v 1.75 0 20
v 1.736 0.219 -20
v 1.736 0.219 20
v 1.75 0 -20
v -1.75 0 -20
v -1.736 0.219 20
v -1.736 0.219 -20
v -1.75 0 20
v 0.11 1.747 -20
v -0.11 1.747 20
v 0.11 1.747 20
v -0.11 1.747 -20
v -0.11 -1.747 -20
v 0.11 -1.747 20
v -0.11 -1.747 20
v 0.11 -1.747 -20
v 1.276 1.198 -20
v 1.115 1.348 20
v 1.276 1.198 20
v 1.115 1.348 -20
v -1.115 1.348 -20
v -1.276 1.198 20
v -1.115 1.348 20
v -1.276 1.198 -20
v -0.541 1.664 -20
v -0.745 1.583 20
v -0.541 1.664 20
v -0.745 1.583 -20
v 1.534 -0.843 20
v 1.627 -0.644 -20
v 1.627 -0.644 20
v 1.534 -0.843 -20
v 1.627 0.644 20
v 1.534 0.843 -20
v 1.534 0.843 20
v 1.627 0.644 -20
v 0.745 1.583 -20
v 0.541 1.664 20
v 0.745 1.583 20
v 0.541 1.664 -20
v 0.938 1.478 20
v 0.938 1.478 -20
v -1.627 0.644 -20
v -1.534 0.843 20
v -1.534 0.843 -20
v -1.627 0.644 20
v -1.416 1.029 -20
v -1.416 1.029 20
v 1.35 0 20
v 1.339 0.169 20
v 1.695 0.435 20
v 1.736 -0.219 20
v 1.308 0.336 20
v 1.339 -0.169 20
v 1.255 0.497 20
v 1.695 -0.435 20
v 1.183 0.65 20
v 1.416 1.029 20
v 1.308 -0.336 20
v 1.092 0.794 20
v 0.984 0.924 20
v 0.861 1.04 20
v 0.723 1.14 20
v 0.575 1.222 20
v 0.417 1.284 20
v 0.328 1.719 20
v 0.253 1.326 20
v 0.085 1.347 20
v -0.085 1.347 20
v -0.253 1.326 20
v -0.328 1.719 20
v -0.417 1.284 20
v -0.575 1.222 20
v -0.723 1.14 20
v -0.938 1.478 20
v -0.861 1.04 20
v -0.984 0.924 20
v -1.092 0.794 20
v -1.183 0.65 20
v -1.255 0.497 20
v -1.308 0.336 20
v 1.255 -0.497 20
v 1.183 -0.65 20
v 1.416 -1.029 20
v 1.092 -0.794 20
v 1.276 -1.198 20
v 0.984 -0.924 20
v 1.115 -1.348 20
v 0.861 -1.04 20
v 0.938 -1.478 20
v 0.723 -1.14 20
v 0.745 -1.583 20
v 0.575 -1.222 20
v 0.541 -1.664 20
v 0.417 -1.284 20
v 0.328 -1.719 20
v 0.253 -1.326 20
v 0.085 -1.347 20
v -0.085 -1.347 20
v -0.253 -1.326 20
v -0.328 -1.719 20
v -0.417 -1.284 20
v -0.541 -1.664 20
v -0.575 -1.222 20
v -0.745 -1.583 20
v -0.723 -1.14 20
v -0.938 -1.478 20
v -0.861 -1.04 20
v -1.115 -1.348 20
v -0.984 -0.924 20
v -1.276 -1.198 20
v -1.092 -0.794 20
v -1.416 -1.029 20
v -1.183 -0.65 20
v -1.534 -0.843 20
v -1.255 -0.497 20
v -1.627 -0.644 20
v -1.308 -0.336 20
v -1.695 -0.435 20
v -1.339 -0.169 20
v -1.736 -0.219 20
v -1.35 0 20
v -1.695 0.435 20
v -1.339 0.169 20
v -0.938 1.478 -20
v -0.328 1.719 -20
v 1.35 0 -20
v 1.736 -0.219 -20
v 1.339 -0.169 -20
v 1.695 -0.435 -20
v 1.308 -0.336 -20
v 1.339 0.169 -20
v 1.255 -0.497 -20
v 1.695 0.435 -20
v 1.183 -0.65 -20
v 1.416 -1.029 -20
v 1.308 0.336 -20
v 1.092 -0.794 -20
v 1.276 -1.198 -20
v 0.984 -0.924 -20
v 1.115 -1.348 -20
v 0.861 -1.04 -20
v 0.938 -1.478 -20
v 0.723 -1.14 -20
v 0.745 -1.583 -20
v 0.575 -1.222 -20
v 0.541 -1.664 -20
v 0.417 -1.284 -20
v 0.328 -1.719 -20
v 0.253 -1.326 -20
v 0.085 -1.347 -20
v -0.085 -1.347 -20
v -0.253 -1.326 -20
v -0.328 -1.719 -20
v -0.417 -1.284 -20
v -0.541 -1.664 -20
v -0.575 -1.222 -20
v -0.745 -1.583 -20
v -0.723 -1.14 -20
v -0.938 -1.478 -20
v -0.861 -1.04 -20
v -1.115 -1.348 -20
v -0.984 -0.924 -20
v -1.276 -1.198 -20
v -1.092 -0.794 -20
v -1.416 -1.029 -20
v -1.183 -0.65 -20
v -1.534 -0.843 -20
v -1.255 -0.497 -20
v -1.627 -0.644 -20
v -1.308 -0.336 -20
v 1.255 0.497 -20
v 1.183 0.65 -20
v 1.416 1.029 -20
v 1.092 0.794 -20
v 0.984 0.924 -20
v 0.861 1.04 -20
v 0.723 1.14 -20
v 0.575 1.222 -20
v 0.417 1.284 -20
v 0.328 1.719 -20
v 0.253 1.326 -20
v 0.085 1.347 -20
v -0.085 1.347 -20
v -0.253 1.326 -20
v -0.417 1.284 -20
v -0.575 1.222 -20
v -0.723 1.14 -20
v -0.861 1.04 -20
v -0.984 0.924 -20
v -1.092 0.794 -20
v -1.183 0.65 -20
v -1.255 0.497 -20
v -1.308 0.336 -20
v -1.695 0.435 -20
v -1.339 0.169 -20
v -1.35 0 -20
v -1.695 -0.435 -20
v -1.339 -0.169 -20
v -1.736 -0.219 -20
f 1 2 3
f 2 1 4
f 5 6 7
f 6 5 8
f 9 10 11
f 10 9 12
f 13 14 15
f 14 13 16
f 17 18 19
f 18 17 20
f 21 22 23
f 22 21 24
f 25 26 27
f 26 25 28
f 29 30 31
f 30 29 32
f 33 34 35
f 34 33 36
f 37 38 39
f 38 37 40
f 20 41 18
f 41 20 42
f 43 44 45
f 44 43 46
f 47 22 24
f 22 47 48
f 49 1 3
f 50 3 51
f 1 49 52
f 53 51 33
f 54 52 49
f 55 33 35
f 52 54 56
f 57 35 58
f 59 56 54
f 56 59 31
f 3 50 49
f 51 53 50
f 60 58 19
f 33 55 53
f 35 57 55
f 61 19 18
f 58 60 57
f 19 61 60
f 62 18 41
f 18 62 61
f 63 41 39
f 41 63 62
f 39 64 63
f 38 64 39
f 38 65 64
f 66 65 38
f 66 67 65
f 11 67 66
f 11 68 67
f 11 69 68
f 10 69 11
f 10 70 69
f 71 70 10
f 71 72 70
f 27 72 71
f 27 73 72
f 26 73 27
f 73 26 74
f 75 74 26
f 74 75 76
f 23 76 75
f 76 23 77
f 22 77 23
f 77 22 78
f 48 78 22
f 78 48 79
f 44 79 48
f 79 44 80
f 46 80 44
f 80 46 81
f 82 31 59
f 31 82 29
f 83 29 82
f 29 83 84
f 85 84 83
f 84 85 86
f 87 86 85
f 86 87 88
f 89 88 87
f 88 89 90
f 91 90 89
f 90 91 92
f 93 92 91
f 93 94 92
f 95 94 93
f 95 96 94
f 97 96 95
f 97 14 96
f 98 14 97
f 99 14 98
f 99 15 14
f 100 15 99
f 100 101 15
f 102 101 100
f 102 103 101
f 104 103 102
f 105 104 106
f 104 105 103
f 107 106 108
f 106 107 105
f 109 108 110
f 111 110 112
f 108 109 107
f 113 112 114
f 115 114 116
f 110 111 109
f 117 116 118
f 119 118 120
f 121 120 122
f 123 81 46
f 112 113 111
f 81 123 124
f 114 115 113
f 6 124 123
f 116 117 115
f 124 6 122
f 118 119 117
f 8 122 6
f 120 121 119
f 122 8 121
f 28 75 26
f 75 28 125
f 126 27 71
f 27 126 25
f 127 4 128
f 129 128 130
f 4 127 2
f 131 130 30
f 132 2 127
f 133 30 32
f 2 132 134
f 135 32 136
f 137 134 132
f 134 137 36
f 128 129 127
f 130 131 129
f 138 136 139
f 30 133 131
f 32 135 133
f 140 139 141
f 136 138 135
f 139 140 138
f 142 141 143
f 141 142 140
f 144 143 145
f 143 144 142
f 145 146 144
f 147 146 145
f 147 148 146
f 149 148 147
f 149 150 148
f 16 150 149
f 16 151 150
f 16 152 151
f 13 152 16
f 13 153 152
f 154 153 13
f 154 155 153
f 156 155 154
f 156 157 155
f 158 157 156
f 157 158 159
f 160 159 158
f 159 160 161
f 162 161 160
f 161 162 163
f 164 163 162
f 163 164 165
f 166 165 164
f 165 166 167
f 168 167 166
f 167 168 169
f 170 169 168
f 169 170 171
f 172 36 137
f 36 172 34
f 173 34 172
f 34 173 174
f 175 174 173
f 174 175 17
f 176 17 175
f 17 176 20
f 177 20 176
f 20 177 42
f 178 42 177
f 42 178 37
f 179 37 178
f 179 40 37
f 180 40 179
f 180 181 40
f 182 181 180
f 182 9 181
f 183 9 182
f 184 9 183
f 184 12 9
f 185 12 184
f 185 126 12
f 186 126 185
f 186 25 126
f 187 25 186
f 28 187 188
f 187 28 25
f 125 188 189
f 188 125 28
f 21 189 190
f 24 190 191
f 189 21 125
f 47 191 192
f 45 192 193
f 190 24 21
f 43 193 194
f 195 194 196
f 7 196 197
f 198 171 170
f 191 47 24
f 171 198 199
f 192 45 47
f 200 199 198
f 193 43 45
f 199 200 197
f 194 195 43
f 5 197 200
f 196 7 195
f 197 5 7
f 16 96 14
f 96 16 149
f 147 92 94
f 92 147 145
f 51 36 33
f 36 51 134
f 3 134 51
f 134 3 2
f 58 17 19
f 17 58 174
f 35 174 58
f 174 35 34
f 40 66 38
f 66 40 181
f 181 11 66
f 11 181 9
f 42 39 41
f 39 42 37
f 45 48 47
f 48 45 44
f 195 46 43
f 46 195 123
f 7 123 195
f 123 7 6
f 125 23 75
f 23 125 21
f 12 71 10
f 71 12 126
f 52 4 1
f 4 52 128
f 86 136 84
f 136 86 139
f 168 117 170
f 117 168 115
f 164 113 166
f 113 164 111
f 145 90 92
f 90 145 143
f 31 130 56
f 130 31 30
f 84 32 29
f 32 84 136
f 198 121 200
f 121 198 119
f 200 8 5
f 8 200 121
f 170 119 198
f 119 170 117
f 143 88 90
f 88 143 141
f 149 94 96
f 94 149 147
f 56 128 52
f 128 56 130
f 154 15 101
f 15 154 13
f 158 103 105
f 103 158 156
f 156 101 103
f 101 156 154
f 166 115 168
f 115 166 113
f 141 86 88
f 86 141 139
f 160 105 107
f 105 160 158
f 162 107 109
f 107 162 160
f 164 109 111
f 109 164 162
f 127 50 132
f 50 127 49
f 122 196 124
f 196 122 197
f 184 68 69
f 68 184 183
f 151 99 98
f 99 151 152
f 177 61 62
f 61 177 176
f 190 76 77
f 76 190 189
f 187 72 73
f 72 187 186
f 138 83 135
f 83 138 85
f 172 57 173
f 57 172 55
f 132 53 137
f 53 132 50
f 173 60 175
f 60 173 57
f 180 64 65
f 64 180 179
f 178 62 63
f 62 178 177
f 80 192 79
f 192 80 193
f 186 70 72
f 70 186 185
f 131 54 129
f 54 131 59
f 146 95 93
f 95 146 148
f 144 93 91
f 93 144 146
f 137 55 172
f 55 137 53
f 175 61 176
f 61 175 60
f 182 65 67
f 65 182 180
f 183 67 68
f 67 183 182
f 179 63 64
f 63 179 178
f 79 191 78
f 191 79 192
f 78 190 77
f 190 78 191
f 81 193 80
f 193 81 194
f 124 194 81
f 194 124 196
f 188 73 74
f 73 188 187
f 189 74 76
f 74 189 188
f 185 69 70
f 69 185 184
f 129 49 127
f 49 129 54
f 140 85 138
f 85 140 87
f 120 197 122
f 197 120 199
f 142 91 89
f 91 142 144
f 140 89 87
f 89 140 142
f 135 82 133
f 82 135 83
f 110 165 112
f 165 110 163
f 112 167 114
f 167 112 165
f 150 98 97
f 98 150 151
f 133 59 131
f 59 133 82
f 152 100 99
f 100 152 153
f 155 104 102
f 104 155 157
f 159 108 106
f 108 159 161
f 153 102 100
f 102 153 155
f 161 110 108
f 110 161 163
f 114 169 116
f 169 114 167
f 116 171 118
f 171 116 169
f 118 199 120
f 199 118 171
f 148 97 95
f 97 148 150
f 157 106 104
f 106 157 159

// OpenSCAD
$fn = 50;


difference() {
	union() {
		translate(v = [0, 0, -20.0000000000]) {
			cylinder(h = 40, r = 1.7500000000);
		}
	}
	union() {
		translate(v = [0, 0, -100.0000000000]) {
			cylinder(h = 200, r = 1.3500000000);
		}
	}
}
